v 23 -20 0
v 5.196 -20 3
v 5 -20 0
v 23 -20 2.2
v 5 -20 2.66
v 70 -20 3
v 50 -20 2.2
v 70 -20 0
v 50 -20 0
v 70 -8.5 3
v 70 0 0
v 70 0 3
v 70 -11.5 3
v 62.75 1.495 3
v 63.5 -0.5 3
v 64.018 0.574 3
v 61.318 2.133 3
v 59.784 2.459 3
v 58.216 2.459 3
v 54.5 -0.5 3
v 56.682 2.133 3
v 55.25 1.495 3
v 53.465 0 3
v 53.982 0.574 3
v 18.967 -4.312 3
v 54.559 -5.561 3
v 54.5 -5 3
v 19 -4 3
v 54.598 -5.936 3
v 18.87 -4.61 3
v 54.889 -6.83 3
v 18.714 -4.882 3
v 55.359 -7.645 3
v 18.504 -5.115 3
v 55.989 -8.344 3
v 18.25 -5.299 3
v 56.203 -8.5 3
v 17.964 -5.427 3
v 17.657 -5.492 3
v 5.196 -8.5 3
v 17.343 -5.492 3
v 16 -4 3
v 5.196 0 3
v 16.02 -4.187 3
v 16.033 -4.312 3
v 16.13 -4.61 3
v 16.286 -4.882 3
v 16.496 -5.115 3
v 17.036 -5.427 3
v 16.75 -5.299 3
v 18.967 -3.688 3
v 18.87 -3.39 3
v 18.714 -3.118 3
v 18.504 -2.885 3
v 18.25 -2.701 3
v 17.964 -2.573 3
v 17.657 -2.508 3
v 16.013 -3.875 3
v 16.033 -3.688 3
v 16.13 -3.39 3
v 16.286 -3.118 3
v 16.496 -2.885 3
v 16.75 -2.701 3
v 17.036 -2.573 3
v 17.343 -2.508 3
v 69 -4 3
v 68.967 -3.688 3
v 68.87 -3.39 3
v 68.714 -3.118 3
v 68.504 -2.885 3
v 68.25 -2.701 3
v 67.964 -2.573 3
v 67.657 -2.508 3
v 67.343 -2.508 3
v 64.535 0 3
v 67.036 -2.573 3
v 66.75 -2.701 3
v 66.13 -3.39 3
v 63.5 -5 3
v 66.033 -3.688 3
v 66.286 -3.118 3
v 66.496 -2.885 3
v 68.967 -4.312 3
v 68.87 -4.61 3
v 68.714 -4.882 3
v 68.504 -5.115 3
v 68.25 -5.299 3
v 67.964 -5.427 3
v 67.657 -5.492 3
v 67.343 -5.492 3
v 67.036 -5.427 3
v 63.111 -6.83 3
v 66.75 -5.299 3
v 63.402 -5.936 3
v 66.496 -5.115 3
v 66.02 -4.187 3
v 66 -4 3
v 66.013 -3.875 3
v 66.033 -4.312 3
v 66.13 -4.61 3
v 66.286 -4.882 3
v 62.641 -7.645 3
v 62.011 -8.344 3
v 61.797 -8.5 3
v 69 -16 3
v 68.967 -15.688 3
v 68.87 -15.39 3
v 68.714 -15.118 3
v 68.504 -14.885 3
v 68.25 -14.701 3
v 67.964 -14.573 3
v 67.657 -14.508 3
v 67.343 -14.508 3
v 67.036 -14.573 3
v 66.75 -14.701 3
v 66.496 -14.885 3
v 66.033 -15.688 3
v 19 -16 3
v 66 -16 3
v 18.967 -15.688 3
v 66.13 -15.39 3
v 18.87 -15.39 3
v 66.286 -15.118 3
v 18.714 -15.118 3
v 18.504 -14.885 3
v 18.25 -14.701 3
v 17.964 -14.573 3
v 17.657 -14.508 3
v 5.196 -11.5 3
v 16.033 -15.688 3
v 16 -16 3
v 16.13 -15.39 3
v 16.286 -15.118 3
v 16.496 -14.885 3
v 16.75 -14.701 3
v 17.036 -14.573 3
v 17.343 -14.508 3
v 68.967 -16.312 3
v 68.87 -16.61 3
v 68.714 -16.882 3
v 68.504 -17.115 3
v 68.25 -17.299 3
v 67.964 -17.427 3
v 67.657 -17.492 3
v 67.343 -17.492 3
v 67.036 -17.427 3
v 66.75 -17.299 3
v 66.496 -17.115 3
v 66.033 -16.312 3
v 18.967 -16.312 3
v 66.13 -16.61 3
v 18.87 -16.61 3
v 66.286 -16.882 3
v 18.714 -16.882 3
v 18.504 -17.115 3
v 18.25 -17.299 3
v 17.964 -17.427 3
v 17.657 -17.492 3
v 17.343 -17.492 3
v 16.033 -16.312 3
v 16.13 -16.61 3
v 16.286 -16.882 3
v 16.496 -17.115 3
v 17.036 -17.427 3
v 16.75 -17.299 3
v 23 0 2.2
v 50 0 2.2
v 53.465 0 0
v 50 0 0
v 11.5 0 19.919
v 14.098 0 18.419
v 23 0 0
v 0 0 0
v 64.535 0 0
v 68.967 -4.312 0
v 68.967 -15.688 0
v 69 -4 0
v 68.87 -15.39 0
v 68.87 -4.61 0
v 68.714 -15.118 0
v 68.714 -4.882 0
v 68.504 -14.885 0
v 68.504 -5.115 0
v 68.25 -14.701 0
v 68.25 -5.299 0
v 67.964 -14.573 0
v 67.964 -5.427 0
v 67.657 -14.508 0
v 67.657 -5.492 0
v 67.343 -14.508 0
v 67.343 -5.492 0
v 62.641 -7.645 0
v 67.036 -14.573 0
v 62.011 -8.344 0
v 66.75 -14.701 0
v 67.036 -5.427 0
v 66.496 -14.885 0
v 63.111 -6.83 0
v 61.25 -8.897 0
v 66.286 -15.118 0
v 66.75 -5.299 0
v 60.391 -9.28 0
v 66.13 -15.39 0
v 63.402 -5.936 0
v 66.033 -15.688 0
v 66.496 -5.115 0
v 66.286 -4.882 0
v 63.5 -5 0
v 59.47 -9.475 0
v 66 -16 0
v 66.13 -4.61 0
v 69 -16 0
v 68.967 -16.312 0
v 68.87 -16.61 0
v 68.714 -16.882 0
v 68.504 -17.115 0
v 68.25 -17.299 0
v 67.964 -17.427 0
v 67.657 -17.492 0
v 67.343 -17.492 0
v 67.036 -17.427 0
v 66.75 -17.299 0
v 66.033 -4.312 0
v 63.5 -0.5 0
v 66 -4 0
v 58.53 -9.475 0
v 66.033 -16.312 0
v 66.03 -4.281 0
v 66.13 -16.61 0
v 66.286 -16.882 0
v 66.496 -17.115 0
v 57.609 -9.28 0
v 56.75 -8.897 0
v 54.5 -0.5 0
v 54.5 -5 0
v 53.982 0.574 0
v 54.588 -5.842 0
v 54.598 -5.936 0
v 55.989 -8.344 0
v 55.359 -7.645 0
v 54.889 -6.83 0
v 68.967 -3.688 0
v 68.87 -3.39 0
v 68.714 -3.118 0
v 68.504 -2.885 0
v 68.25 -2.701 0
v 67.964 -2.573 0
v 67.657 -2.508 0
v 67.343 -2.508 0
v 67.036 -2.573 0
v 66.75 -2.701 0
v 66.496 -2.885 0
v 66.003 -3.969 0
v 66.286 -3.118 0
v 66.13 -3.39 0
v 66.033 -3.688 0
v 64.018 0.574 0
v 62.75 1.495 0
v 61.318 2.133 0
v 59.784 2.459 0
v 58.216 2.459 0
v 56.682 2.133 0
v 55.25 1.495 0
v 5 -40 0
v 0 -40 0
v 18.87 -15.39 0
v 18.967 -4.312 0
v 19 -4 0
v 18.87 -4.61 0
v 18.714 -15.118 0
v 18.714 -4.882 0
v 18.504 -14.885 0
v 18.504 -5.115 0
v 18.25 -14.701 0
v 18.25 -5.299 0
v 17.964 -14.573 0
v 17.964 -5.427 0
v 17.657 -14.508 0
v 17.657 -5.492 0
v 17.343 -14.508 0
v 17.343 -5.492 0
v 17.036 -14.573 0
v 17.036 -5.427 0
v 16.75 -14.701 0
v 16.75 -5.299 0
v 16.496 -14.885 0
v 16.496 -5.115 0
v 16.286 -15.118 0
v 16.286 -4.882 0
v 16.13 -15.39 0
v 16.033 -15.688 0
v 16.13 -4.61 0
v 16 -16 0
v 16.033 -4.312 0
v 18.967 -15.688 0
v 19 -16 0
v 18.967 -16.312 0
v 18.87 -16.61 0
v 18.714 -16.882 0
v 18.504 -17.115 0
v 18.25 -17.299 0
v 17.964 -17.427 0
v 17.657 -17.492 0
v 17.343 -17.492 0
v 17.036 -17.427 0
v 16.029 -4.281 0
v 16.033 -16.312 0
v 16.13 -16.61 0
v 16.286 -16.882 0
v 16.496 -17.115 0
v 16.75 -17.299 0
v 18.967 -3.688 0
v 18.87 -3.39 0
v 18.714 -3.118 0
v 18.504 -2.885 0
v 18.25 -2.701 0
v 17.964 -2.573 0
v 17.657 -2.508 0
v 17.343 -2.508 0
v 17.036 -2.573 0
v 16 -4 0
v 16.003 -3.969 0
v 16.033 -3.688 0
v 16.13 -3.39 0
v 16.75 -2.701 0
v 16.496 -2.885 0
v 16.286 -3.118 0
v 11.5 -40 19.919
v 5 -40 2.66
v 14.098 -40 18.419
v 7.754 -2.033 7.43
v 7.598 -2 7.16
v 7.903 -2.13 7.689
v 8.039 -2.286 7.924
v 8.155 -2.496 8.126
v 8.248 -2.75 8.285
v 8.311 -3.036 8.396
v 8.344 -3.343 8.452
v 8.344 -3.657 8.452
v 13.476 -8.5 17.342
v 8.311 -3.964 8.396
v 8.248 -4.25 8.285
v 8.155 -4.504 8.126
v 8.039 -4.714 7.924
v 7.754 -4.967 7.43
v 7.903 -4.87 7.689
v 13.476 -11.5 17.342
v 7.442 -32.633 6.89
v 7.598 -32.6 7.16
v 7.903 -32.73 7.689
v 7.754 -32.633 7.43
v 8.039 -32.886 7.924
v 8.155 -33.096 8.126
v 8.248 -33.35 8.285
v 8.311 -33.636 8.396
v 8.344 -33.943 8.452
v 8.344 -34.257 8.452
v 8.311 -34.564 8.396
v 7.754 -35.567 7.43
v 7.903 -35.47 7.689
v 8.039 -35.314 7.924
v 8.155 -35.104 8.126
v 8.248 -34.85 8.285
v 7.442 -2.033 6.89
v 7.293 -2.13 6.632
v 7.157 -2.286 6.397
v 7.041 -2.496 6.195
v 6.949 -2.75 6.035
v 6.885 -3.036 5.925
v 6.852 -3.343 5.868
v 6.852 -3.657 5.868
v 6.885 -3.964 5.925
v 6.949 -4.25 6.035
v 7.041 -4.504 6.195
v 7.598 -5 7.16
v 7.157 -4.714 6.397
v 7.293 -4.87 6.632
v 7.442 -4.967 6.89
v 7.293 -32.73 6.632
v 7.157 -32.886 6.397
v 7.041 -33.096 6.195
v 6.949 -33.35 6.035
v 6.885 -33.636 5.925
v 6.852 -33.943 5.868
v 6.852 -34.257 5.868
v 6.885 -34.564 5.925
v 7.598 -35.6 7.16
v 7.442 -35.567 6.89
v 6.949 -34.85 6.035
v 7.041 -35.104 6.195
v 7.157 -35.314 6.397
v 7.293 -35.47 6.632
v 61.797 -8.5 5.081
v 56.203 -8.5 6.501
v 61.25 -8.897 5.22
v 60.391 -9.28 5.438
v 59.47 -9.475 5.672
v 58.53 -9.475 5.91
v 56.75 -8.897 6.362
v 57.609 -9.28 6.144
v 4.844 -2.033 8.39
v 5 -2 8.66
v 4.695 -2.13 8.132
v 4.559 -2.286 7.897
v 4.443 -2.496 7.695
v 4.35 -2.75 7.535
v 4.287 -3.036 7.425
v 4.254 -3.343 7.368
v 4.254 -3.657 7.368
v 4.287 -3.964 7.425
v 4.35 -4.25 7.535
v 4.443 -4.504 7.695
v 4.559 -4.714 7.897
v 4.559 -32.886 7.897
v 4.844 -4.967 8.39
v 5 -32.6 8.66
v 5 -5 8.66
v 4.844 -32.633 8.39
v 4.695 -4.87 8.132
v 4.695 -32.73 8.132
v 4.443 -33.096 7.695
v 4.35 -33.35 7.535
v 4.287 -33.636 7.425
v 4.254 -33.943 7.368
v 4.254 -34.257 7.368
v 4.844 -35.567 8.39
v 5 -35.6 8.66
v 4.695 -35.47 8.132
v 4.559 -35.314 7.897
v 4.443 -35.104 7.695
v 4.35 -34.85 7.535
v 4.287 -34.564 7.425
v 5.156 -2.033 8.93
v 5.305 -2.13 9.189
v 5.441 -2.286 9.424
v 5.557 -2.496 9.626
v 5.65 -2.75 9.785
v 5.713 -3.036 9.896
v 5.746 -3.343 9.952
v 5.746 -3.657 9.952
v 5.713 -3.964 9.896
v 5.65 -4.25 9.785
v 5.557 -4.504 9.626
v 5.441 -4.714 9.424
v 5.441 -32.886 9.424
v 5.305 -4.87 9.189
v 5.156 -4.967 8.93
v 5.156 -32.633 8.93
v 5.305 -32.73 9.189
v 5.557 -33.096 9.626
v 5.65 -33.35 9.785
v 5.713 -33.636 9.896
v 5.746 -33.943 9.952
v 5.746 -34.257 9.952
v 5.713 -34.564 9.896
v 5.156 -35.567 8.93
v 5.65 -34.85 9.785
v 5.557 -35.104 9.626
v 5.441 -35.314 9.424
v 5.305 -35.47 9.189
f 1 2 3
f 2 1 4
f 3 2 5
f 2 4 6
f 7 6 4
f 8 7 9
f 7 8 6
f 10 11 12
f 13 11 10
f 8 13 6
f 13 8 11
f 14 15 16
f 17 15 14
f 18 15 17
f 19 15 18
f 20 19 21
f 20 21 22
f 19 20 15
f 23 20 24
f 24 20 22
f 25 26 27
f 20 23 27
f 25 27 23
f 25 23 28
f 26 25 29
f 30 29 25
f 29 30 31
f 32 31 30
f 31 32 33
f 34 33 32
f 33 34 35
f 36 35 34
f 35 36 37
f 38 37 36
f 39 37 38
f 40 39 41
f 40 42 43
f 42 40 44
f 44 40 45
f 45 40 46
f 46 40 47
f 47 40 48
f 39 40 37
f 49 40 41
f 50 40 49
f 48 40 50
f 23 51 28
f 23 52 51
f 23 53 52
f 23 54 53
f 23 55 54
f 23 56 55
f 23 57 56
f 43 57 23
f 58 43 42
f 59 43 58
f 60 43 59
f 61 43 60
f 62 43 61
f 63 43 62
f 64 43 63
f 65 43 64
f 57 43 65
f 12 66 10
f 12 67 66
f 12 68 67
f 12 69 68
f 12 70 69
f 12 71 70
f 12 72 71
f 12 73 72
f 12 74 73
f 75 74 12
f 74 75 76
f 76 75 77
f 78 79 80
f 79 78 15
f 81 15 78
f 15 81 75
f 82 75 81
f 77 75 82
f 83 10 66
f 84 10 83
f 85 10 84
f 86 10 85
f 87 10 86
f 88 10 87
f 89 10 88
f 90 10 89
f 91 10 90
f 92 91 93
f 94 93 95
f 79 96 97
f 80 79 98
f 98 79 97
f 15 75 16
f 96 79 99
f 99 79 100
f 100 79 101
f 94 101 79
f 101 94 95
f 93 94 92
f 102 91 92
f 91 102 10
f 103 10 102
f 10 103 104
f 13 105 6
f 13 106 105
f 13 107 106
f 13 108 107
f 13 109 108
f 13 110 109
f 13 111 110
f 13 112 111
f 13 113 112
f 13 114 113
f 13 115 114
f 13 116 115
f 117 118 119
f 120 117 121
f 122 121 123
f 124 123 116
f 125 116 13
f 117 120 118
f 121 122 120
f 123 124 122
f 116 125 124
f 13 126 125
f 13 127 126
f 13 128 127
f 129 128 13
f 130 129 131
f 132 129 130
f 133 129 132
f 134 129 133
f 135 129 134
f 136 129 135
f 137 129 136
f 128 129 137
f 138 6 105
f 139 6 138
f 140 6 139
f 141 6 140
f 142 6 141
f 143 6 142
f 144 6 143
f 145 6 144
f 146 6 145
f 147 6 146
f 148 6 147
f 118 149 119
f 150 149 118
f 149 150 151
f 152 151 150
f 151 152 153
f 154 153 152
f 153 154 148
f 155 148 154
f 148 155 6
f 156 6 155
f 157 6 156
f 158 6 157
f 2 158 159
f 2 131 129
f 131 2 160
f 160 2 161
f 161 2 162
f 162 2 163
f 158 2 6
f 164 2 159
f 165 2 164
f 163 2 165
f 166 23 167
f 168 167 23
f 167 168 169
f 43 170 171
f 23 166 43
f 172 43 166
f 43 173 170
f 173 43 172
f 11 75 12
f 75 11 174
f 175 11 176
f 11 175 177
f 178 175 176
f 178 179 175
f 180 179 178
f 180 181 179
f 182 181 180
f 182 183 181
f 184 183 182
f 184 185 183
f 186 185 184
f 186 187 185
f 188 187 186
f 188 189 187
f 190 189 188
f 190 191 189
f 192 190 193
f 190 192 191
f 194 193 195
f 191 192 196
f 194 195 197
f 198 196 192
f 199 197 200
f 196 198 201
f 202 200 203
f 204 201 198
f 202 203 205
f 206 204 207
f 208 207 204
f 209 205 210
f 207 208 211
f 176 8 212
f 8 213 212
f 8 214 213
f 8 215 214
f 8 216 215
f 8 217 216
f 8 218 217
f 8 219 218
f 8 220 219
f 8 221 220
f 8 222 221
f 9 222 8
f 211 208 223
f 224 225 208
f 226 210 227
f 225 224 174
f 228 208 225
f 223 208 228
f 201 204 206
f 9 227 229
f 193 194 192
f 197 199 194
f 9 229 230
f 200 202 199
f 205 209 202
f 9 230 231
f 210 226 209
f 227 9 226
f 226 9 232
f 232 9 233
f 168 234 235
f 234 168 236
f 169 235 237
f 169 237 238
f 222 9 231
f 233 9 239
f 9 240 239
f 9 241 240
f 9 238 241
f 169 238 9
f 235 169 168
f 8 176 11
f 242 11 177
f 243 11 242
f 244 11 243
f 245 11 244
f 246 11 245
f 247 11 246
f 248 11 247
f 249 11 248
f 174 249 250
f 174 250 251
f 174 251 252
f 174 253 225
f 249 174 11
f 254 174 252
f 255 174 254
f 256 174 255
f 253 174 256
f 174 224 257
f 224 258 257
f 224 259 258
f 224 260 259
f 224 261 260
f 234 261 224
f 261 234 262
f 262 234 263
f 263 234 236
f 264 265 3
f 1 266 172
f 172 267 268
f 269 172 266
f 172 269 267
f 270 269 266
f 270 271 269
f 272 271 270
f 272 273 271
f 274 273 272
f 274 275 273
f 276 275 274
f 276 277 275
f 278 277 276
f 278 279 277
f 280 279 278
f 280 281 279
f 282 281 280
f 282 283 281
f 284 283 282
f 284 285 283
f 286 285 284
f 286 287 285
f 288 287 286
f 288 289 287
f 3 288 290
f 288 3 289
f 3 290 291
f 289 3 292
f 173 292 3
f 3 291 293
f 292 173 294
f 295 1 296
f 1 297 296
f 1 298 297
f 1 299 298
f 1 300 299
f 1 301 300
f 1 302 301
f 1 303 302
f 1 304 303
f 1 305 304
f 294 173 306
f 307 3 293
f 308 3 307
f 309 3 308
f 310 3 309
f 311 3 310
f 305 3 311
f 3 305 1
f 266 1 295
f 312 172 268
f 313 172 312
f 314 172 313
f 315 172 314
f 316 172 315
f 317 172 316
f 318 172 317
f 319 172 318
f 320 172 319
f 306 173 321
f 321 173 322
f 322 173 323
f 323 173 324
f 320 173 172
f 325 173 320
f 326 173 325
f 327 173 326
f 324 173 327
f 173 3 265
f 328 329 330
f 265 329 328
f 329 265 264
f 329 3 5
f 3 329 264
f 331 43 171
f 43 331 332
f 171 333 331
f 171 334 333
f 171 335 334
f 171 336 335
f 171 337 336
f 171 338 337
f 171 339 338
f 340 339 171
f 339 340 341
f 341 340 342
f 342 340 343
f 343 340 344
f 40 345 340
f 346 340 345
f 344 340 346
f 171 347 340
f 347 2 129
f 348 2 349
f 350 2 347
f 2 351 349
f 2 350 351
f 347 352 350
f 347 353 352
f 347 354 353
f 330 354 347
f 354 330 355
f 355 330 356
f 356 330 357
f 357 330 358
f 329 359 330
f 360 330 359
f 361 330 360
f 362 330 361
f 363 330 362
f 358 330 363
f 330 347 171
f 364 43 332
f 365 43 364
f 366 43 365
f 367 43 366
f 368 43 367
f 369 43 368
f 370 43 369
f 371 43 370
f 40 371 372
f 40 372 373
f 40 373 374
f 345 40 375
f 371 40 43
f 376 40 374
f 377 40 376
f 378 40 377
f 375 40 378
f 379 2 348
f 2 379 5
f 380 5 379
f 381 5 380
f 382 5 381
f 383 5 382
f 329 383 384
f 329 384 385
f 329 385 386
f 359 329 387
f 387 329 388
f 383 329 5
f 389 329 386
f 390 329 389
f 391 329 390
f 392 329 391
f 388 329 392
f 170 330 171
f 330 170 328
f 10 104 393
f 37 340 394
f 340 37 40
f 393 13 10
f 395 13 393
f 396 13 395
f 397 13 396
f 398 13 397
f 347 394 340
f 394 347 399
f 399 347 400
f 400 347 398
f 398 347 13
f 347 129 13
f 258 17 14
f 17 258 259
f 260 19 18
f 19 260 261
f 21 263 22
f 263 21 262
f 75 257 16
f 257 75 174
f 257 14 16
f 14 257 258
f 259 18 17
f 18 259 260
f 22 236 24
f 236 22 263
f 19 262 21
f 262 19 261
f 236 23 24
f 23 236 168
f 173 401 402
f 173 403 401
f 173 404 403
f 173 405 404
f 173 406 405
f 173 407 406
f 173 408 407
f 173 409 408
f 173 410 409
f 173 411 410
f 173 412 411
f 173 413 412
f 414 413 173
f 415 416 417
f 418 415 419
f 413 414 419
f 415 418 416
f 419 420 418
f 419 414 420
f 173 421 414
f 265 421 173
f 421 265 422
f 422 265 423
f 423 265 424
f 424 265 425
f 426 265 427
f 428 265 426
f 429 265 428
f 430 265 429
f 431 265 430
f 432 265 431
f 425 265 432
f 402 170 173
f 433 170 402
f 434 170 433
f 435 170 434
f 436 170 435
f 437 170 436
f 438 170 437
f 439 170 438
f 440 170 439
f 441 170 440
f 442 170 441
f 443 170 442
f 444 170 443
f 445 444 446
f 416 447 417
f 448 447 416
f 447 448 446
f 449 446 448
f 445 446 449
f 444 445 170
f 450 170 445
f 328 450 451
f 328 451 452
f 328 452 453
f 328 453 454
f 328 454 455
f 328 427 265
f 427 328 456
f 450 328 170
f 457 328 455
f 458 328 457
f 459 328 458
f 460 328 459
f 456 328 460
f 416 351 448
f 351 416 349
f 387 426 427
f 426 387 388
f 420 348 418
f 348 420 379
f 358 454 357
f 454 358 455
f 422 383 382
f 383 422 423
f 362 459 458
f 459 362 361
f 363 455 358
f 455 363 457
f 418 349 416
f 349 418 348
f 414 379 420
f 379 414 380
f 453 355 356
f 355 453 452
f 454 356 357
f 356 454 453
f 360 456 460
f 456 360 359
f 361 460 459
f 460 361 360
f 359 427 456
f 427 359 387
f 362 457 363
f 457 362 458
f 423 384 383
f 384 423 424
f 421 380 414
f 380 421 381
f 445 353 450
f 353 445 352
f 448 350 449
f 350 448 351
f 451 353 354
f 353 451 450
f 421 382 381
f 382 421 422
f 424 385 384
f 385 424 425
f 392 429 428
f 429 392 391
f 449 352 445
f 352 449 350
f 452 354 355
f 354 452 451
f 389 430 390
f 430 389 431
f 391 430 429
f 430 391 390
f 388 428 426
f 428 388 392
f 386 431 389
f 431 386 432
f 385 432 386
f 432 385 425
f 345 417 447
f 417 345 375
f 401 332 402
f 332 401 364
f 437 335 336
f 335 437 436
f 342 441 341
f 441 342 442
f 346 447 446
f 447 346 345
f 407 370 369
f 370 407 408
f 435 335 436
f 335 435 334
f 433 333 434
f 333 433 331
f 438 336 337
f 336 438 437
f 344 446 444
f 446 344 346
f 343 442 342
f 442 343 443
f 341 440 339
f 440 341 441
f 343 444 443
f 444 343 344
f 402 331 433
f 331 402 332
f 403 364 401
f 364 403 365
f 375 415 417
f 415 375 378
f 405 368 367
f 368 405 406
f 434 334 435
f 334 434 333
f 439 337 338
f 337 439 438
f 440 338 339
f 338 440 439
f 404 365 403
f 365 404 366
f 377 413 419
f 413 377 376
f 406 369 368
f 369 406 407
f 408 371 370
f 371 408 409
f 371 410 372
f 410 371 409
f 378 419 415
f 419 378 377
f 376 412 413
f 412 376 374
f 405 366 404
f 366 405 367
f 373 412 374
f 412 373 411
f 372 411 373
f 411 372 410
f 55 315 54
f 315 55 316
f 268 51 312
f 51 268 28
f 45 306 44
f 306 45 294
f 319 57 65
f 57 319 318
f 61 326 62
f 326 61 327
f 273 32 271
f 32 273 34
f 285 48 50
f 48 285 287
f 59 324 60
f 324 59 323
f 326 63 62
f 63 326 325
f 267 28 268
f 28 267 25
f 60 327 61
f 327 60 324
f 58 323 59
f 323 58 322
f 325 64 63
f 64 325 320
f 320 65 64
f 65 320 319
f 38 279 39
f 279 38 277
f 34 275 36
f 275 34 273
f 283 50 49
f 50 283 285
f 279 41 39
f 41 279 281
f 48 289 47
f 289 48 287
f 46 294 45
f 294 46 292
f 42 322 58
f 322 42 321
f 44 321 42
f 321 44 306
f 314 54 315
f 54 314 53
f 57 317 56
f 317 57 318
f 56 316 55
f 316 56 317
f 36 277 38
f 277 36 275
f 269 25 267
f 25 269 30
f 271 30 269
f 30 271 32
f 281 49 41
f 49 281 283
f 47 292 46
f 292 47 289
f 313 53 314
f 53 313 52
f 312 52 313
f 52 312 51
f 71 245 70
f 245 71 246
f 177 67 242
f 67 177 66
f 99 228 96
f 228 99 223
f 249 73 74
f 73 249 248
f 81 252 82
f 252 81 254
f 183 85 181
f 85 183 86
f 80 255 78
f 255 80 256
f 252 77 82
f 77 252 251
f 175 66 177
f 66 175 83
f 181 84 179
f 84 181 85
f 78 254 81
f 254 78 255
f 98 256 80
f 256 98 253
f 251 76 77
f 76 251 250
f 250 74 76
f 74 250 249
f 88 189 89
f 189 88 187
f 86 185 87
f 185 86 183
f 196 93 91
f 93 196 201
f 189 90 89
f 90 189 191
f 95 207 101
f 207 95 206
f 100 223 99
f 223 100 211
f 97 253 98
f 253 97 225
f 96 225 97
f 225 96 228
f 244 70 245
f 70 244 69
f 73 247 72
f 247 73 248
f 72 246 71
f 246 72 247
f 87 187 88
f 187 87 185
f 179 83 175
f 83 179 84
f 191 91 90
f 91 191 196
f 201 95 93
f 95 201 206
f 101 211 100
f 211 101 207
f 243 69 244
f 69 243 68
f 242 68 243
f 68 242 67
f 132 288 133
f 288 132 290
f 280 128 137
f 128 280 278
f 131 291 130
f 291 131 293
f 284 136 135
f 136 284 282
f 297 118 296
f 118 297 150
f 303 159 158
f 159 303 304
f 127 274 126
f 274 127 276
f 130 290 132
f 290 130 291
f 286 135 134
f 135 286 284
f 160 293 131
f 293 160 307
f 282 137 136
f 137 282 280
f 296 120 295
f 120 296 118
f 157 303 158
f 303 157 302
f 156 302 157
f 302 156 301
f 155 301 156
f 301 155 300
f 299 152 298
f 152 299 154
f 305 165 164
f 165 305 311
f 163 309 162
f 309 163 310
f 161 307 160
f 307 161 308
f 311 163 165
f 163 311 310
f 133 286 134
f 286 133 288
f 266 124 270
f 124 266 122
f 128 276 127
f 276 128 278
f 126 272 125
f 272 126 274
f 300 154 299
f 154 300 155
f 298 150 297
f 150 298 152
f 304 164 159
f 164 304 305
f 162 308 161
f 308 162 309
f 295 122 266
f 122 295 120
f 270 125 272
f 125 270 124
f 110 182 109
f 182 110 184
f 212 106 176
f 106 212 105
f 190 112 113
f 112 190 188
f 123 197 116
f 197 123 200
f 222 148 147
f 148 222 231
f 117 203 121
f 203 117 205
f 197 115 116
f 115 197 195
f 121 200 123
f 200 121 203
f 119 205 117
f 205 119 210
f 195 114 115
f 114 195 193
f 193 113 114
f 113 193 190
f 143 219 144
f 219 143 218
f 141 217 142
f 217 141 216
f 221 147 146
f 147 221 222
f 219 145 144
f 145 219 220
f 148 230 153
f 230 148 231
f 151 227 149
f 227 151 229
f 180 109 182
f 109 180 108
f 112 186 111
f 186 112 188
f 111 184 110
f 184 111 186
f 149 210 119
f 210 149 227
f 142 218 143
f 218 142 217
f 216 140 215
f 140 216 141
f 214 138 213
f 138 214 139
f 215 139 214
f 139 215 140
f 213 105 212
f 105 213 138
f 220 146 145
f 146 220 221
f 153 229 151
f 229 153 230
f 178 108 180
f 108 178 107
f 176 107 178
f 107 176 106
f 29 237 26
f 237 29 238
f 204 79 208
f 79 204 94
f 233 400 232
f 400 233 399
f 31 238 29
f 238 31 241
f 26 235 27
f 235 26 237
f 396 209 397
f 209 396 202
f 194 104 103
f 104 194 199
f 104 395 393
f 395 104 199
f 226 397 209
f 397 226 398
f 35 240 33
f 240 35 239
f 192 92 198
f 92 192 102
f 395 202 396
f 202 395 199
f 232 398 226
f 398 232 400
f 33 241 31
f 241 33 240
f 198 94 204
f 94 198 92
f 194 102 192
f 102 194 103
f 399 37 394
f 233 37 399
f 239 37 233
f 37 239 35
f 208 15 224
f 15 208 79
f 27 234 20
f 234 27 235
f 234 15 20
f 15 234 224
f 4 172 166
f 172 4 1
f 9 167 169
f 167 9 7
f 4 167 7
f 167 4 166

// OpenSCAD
// file: lib/halfcube.scad
// библиотечная функция - прямоугольная призма
/*
 * a - вектор [x,y,z] - куб, в который вписана призма
 * orient - строка "x"/"y"/"z" - ориентация треугольной грани призмы
 * center - логическое true/false - позиционирование относительно центра или с угла
 *
 * Автор - Andrew Answer (Андрей Нуждов): http://answe.ru
 * Сделано для проекта SibRap: http://reprap.org/wiki/SibRap
 * GitHub: https://github.com/andrewanswer/sibrap
 */
module halfcube(a, orient, center) {
	translate(center==true?-a/2:0) {
		if (orient=="x")
			polyhedron (points = [[a[0],0,a[2]], [0,0,a[2]], [0,a[1],0], [0,0,0], [a[0],0,0], [a[0],a[1],0]], faces = [[1,3,2], [4,0,5], [3,1,4], [1,2,5], [1,0,4], [0,1,5],  [5,2,4], [4,2,3]]);
		if (orient=="y")
			polyhedron (points = [[0,a[1],a[2]], [0,0,a[2]], [0,a[1],0], [0,0,0], [a[0],0,0], [a[0],a[1],0]], faces = [[1,3,2], [1,2,0], [3,1,4], [0,2,5], [1,5,4], [1,0,5],  [5,2,4], [4,2,3]]);
		if (orient=="z")
			polyhedron (points = [[0,a[1],a[2]], [0,0,a[2]], [0,a[1],0], [0,0,0], [a[0],0,0], [a[0],0,a[2]]], faces = [[1,3,2], [1,2,0], [3,1,4], [0,2,5], [1,5,4], [1,0,5],  [5,2,4], [4,2,3]]);
	}
}

// test
/*
halfcube([10,20,30],"x",true);
halfcube([10,20,30],"y",true);
halfcube([10,20,30],"z",false);
*/
// file: config.scad
/**
 * Глобальный конфигурационный файл
 */
// качество цилиндров
$fn=30;

// избегание совпадения граней
DELTA=0.1;

// толщина рамы
FRAME=18;

// расстояние от стенок до гайки
DELTA_NUT = 0.3;
// высота, макс. диаметр, между стенками (размер ключа)
// гайка М3
m3_base=[2.4,6.4,5.5];
m3_hole=m3_base+[DELTA_NUT,DELTA_NUT,DELTA_NUT];
//[3,7,6]
// гайка М4
m4_base=[3.2,8.1,6.9];
m4_hole=m4_base+[DELTA_NUT,DELTA_NUT,DELTA_NUT];
// гайка М5
m5_base=[3.8,9.1,7.9];
m5_hole=m5_base+[DELTA_NUT,DELTA_NUT,DELTA_NUT];
// main file
include <config.scad>
use <lib/halfcube.scad>

x2=145;
x3=120;
dx=(x2-x3)/2;
dx0=4;

x1=70;
y1=20;
z1=20;
h1=3;

r1=4.5;

module lcd() {
    rotate([90,0,0])
    difference() {
    union() {
        cube([x1,h1,z1]);
      translate([0,0,20])cube([5,h1,z1]);
        rotate([0,0,-30])translate([0,3,0])cube([h1,y1,z1+20]);
        translate([h1,h1,(z1-h1)/2])halfcube([x1-h1,y1-h1,h1],"z");
        translate([x1-11,0,z1-dx0-11])rotate([-90,0,0])cylinder(r=r1+3,h=h1);
    }
        rotate([0,0,-30]){translate([-3*3,0,0])cube([h1*3,y1+3,z1+20]);
        translate([-1,10,dx0+dx-13+30.6])rotate([0,90,0])cylinder(r=1.5,h=h1+2);
        translate([-1,10,z1-(dx0+dx)])rotate([0,90,0])cylinder(r=1.5,h=h1+2);}
        translate([x1-2.5-50,-1,dx0])rotate([-90,0,0])cylinder(r=1.5,h=10);
        translate([x1-2.5,-1,dx0])rotate([-90,0,0])cylinder(r=1.5,h=10);
        translate([x1-2.5-50,-1,z1-dx0])rotate([-90,0,0])cylinder(r=1.5,h=10);
        translate([x1-2.5,-1,z1-dx0])rotate([-90,0,0])cylinder(r=1.5,h=10);
        translate([x1-11,-1,z1-dx0-11])rotate([-90,0,0])cylinder(r=r1,h=10);
        translate([x1-11-r1,-1,z1-dx0-11])rotate([-90,0,0])cube([r1*2,r1,h1+2]);
        translate([x1-21-25-1,-0.1,-0.1])cube([27,2.3,20.2]);
    }
}

lcd();
